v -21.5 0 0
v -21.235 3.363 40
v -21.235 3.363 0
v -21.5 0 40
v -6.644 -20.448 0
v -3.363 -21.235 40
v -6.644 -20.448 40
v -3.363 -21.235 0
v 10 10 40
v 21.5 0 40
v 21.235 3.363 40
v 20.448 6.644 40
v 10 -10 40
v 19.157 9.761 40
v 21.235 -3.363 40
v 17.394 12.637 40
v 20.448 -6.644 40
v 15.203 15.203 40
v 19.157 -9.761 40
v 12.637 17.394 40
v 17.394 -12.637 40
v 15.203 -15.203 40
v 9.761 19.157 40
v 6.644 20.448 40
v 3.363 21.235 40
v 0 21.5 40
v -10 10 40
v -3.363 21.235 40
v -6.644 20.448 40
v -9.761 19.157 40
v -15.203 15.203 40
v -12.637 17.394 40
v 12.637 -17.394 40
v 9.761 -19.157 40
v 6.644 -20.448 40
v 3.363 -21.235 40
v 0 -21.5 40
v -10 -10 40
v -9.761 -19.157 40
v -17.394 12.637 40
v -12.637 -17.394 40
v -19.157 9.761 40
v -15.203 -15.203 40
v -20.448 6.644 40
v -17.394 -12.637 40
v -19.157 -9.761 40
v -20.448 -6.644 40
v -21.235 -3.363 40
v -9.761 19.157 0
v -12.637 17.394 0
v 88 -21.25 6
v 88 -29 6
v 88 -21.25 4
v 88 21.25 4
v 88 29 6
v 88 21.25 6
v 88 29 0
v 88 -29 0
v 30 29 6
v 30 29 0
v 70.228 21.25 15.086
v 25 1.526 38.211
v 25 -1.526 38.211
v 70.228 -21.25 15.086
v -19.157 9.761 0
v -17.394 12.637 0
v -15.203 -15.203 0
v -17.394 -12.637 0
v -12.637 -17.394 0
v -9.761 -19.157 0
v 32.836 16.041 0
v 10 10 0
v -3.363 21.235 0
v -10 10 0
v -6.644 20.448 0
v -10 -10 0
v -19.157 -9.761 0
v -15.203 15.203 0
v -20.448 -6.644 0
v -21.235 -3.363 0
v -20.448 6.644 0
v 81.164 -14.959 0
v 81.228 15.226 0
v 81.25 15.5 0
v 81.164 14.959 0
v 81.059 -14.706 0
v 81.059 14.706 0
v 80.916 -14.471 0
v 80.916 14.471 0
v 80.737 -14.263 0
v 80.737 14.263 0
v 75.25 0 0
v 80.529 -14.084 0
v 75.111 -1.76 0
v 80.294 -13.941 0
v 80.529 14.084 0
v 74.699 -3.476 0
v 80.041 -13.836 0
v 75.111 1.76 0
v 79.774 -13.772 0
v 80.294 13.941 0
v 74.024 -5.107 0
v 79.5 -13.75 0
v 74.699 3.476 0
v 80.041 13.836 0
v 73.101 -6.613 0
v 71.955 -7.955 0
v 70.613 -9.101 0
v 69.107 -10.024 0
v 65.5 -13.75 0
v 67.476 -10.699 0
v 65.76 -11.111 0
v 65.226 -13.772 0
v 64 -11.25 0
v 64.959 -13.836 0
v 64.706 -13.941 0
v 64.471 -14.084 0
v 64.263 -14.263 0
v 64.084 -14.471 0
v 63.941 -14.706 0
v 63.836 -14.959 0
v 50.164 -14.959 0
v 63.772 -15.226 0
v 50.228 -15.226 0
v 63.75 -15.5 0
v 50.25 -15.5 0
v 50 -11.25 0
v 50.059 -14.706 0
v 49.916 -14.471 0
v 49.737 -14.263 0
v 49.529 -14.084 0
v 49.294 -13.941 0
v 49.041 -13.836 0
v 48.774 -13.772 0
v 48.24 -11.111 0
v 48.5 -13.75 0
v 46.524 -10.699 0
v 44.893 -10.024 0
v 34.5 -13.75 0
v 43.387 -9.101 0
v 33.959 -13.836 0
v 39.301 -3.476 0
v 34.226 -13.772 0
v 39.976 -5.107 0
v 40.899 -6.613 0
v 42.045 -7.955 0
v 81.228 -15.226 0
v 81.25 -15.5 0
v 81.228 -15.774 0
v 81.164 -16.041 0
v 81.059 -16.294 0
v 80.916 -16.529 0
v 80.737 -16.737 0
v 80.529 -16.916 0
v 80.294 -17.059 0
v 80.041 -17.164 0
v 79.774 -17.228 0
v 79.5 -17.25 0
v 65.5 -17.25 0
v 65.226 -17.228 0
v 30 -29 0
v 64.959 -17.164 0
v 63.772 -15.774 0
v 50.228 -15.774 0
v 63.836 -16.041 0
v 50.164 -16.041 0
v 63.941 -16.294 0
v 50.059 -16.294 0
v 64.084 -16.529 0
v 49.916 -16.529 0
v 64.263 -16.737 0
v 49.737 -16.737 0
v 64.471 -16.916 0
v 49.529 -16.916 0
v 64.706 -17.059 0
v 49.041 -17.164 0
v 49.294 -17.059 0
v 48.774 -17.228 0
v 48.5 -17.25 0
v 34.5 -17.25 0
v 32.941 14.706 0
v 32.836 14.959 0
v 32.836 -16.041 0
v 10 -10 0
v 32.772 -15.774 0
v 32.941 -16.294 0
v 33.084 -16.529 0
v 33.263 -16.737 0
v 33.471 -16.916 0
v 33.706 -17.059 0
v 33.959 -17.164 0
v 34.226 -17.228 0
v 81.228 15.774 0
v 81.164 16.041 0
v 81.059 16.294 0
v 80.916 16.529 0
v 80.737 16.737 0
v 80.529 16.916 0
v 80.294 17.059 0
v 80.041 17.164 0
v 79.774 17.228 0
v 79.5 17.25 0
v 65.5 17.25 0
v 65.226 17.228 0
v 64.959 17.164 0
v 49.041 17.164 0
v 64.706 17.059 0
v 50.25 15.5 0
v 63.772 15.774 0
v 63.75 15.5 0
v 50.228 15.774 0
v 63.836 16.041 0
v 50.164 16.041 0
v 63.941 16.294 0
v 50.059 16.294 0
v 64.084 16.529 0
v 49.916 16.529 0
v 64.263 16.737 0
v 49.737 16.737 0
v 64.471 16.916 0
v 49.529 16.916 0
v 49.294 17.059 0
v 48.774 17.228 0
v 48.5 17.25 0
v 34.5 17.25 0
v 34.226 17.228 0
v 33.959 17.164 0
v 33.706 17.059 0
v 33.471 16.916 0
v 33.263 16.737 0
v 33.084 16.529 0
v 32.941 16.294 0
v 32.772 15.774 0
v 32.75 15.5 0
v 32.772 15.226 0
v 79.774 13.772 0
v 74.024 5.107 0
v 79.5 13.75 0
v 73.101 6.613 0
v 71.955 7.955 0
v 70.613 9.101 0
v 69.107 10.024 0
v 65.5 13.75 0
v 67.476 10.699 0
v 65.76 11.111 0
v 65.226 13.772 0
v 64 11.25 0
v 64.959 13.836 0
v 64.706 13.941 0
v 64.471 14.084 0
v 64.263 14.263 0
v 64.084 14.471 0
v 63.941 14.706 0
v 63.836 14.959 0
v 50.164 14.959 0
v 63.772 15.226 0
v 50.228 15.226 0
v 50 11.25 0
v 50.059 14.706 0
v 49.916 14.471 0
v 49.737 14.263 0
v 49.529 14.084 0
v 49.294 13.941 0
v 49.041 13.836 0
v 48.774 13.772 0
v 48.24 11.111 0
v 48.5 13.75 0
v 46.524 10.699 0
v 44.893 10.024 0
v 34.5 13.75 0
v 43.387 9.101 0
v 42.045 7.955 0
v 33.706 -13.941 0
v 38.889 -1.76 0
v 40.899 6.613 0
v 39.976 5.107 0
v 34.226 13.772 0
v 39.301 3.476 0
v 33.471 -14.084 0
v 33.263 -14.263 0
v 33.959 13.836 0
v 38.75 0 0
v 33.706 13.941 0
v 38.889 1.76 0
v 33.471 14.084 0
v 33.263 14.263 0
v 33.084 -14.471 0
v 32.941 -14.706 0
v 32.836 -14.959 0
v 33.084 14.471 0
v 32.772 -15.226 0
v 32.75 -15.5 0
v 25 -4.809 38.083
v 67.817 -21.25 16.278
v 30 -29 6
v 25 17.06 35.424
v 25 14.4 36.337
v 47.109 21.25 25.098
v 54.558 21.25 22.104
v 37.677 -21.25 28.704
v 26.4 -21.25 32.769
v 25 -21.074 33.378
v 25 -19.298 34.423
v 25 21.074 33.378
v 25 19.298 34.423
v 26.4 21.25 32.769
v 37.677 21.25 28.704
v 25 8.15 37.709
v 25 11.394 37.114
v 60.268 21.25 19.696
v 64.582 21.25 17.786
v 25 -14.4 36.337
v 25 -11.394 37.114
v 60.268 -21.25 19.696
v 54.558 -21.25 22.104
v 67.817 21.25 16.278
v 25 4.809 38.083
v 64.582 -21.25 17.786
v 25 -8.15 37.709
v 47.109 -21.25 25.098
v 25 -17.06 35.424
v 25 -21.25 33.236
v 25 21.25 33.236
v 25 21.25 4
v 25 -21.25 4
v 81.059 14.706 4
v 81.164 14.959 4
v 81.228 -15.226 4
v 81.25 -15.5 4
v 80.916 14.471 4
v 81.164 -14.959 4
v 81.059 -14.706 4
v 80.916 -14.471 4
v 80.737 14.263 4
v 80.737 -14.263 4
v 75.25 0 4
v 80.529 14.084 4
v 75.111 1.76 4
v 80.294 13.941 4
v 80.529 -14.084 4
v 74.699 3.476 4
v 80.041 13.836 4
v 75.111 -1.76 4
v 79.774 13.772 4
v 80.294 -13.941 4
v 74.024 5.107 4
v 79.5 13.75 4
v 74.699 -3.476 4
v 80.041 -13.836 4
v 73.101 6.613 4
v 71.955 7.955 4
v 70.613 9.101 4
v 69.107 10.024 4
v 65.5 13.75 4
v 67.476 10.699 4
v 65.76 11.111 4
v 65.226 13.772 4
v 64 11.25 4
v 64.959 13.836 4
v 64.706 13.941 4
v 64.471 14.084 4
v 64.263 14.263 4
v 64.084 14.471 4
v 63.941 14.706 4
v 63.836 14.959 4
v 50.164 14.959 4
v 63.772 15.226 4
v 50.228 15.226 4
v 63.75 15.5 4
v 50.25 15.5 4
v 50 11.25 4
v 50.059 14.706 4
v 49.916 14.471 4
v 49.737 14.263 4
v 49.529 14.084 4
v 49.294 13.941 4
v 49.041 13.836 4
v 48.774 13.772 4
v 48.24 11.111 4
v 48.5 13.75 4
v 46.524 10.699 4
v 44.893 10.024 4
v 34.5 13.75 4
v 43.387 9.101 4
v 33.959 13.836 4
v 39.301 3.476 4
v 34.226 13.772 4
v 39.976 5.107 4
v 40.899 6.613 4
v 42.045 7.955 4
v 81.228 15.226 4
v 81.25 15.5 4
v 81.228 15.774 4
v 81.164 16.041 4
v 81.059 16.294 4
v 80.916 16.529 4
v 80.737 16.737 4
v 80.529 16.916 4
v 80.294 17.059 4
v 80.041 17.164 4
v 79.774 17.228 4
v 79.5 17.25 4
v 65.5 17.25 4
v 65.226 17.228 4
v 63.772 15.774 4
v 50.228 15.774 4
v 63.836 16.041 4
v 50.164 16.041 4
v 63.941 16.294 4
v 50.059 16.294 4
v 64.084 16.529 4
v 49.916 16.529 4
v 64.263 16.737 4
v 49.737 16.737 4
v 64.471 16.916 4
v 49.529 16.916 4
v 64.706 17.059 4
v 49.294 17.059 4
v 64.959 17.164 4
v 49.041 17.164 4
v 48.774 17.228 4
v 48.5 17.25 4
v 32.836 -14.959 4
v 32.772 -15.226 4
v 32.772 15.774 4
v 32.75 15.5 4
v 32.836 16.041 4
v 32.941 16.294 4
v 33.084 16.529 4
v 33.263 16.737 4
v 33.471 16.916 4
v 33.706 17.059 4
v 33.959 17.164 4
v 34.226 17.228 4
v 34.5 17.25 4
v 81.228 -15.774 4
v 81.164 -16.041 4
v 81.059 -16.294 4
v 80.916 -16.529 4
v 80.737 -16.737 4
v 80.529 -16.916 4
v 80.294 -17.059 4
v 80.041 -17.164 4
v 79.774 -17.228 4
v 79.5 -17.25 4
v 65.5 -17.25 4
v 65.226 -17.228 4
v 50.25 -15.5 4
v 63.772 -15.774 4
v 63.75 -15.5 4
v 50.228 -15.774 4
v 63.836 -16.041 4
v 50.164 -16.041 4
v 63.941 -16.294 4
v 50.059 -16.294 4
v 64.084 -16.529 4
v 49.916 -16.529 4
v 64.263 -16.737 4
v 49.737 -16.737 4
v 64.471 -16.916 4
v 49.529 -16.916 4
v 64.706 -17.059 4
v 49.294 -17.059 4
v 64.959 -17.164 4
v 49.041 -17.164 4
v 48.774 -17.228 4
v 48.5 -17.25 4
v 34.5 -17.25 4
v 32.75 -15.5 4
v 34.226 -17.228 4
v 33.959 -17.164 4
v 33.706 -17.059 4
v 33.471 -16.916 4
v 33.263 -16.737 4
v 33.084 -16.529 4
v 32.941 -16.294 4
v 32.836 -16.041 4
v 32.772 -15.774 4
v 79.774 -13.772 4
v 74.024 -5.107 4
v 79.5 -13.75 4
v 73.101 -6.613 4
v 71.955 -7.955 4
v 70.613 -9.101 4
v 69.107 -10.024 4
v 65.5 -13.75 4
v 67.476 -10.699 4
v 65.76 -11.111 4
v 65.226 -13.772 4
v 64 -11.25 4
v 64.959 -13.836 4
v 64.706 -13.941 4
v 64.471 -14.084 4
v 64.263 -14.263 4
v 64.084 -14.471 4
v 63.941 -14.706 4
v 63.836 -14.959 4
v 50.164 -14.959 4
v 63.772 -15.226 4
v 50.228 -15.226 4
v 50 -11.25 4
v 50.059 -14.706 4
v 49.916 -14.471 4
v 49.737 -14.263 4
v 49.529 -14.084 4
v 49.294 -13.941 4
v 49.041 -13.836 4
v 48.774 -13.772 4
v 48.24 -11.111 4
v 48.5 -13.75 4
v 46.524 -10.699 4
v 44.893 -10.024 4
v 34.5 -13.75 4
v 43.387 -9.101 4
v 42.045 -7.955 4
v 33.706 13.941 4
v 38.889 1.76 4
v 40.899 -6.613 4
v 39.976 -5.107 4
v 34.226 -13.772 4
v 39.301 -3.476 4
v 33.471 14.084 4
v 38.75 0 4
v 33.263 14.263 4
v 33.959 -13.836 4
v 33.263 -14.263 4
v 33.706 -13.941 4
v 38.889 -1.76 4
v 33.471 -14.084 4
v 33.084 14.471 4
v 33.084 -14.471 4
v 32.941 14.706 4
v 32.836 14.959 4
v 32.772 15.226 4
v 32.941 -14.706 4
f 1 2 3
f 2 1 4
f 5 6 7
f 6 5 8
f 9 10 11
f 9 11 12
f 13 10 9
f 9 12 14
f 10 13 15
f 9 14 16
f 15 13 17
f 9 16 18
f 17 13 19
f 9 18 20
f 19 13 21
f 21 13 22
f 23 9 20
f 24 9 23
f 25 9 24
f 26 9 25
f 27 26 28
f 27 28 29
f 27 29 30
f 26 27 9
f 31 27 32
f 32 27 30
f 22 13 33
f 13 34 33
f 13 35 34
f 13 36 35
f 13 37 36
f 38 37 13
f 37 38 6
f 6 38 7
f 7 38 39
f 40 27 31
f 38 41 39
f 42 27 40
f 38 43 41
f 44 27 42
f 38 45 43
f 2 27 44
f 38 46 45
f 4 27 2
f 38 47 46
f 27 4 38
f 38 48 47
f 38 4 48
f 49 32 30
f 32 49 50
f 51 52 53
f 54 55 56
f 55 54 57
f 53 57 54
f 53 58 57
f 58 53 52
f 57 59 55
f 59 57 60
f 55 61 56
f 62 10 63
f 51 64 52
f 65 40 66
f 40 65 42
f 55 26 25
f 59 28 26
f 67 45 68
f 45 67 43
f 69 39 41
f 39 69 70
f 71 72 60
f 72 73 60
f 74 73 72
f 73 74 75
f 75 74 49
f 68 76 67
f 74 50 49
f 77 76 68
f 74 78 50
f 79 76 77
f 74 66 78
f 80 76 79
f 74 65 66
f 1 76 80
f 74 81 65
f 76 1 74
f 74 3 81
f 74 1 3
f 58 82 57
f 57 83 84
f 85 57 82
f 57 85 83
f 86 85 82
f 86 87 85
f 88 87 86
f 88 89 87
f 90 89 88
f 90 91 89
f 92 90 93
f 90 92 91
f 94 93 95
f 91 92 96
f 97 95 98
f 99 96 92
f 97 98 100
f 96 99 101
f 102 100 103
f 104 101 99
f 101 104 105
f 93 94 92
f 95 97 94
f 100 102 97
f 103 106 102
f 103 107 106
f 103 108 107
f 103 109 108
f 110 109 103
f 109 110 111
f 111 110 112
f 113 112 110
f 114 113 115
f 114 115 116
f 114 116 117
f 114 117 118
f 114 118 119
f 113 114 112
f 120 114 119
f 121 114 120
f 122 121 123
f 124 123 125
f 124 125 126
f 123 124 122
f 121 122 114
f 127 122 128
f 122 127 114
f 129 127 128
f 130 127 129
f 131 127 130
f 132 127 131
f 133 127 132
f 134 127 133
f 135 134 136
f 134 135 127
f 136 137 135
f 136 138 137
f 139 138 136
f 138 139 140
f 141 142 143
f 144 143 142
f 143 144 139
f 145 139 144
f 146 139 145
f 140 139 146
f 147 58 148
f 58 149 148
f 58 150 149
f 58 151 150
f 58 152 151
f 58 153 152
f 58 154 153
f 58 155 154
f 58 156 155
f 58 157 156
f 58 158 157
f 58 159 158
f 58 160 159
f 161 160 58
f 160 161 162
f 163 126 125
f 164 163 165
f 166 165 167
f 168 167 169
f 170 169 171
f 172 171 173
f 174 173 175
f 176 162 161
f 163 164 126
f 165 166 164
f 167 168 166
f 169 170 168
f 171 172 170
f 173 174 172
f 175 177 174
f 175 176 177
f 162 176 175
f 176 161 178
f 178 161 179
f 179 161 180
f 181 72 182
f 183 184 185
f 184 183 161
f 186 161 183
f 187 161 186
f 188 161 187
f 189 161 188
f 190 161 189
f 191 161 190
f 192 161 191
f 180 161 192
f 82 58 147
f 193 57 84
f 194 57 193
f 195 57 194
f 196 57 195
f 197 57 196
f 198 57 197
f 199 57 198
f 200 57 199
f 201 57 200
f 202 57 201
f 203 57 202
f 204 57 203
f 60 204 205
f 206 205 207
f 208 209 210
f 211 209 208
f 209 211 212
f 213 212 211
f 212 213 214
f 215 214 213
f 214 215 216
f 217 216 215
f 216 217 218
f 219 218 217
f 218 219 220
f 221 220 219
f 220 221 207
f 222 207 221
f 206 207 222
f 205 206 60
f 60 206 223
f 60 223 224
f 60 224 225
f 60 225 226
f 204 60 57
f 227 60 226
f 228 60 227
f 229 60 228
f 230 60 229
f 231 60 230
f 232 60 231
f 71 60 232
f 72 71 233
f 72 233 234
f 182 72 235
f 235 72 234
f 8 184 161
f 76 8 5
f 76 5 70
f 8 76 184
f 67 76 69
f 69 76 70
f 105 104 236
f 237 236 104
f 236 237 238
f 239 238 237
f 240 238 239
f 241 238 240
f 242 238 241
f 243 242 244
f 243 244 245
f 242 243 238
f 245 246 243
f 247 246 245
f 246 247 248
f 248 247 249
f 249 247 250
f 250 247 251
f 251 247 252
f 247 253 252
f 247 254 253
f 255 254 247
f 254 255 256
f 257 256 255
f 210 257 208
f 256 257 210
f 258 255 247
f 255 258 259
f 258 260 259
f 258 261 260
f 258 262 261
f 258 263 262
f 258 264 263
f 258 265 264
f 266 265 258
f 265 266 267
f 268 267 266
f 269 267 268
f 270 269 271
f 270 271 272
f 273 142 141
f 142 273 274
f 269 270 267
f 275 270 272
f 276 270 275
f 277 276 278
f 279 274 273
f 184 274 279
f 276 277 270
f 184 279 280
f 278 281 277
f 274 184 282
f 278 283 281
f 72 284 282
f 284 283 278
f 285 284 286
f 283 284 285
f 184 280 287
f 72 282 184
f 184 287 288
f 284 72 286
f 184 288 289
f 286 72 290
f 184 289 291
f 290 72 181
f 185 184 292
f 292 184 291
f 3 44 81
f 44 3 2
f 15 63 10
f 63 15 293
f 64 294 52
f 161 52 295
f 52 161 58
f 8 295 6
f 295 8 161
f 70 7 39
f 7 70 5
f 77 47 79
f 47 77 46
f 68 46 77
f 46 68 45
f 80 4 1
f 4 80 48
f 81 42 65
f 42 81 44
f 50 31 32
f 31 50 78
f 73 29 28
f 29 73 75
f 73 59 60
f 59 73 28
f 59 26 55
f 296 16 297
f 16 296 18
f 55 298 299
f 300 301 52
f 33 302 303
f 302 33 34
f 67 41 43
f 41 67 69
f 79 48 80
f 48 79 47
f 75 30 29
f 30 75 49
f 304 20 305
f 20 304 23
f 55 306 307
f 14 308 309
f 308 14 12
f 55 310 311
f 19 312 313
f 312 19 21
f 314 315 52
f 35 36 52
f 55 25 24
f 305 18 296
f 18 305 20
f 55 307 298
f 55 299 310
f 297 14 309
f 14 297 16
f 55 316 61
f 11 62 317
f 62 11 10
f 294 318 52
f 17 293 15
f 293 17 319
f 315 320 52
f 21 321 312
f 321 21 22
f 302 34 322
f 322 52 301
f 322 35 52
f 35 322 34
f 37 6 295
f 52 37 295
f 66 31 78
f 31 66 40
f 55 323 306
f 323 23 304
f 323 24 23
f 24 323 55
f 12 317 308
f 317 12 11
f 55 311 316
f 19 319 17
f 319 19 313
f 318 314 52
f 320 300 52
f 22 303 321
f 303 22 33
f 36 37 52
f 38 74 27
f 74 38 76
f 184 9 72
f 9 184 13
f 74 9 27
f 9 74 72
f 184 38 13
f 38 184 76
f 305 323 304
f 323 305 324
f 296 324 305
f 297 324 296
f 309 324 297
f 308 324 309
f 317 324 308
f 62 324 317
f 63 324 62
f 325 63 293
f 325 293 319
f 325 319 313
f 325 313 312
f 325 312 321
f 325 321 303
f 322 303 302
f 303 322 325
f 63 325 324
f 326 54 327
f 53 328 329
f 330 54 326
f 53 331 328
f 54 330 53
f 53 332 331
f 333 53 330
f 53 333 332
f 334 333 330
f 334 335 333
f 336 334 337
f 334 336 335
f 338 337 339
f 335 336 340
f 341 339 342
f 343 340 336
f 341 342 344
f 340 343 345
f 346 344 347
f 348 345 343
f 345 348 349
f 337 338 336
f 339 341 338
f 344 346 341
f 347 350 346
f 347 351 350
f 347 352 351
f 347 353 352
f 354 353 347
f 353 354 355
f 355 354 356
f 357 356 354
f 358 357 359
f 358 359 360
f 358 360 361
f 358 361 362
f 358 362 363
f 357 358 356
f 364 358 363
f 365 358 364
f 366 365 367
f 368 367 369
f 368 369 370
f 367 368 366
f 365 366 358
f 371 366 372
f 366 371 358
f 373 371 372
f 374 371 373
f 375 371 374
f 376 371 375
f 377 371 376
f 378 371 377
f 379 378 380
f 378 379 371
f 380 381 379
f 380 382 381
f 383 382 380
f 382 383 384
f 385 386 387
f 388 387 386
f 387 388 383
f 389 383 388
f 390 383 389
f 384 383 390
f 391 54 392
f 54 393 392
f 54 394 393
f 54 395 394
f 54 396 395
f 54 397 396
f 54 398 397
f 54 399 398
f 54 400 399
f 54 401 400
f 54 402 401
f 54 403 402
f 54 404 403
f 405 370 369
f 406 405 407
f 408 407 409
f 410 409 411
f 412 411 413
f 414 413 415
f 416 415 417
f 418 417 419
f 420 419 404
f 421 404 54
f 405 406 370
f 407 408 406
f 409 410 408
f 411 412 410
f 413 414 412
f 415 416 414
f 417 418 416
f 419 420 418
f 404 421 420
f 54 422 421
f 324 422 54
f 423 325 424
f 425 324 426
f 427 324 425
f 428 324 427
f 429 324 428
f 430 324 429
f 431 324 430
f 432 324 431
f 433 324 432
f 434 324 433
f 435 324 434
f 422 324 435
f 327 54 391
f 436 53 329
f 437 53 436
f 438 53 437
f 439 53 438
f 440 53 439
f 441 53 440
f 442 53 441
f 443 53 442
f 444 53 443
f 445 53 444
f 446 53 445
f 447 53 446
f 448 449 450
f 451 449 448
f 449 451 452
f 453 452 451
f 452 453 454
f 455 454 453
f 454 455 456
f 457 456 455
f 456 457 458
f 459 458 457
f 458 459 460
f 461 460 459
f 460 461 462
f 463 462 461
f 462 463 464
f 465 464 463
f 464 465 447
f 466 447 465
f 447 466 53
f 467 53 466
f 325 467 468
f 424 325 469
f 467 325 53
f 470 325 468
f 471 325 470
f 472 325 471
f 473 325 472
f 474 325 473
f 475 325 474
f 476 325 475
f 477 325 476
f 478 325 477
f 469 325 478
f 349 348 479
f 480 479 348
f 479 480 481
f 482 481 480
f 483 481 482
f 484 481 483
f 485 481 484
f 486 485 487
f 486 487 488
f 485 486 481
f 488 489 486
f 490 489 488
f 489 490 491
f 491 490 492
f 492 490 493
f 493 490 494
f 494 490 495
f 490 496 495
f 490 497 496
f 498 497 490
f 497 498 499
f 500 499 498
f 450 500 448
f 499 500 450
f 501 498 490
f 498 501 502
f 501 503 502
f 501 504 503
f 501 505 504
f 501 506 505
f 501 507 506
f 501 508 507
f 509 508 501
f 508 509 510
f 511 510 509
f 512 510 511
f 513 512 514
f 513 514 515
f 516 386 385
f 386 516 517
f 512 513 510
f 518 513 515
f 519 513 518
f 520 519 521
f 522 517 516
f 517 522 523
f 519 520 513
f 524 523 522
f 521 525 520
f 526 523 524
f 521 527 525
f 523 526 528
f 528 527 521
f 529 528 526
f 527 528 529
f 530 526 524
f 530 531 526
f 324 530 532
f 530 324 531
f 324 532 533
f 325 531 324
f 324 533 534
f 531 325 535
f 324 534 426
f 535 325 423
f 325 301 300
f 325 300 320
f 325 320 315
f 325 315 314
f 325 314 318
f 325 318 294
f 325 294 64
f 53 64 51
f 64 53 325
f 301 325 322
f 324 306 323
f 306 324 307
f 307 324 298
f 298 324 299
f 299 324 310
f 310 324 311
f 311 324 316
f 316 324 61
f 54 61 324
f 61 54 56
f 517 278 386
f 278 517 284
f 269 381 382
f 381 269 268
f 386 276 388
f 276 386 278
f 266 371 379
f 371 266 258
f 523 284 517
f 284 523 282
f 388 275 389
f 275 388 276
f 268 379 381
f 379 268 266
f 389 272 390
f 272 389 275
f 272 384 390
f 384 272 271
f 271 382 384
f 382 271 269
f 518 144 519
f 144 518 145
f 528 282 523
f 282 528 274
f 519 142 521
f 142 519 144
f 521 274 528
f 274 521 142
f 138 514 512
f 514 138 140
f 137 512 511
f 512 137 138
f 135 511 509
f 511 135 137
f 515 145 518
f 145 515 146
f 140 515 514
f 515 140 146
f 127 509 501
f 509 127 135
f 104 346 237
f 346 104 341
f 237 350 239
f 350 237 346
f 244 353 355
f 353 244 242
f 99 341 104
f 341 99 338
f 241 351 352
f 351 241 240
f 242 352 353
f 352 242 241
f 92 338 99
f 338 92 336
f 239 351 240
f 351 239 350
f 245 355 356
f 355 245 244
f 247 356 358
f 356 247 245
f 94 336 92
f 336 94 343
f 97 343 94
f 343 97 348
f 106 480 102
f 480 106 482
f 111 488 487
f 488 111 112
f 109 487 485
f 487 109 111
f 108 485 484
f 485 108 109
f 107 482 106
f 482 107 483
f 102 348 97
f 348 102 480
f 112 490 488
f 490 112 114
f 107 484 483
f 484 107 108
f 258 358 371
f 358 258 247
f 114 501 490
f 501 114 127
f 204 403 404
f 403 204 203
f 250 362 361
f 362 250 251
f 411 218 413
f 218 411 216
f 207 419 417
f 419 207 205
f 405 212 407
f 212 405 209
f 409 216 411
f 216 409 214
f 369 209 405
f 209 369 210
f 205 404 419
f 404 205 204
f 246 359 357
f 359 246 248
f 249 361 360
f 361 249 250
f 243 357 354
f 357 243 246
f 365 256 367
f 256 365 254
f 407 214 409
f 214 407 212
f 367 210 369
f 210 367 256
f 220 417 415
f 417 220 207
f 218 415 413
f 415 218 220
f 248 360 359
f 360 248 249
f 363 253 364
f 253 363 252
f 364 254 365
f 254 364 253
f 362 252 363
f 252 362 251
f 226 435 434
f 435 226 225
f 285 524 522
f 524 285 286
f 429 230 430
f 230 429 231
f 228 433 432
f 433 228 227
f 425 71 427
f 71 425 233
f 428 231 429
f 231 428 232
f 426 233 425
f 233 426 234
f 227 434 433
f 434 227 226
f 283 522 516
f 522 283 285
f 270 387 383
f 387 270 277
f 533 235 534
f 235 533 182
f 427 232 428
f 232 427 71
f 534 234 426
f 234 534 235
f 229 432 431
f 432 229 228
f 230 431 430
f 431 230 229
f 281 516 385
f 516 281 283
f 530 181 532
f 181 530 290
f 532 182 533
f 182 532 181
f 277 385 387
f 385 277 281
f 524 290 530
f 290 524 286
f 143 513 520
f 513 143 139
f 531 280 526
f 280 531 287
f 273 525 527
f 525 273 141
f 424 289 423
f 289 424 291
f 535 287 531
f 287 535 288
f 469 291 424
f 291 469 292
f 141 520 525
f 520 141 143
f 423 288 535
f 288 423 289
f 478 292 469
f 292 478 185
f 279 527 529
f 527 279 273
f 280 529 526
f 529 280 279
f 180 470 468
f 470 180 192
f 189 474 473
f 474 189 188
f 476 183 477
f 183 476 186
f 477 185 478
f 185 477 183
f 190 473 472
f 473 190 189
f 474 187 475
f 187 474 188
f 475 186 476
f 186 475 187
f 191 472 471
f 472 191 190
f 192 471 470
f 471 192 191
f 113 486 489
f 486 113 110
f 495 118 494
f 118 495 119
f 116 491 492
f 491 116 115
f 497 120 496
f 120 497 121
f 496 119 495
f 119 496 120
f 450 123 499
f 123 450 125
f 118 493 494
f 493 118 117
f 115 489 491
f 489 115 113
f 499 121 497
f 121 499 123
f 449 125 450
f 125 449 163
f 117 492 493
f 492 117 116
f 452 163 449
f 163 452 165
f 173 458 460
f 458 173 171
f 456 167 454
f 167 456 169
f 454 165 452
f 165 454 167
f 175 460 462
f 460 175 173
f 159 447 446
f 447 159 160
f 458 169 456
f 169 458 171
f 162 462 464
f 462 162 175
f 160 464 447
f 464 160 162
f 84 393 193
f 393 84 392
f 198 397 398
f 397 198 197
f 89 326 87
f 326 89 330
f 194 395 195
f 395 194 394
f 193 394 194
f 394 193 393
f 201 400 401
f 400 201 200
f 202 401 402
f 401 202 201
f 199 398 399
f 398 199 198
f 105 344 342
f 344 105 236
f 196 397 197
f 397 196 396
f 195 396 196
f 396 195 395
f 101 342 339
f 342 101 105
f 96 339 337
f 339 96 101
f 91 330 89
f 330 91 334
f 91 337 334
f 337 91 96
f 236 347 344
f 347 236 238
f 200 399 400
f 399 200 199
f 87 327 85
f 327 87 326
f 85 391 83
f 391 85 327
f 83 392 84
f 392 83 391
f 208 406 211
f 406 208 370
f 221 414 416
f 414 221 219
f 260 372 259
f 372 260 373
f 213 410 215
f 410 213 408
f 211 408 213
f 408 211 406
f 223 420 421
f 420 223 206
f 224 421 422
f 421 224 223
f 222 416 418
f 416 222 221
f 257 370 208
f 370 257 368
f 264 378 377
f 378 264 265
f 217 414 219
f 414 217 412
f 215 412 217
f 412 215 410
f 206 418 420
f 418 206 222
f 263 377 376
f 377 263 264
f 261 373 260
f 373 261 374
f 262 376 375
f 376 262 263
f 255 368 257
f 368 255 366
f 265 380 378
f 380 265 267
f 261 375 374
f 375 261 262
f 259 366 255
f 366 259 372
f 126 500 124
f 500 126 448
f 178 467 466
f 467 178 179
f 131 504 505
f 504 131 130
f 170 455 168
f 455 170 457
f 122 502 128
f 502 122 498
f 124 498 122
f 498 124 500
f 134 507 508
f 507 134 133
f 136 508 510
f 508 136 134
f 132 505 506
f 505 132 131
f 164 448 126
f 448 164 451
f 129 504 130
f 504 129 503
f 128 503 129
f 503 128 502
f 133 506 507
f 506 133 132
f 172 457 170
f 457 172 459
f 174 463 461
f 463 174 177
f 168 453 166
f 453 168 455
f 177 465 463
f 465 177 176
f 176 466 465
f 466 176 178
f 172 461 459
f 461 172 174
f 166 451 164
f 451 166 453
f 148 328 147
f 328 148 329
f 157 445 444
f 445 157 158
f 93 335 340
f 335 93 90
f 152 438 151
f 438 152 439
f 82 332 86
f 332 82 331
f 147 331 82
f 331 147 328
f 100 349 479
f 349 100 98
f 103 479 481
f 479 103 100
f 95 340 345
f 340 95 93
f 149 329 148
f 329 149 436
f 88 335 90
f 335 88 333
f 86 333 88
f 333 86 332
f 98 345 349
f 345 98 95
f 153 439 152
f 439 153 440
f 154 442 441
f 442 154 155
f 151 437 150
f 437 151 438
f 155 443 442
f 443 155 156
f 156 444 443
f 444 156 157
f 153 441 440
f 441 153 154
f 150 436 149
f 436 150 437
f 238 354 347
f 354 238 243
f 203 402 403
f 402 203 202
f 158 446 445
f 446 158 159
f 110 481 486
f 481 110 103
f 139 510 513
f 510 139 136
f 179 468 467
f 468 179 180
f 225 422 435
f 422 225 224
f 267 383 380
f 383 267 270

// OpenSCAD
//translate([50,0,+20])rotate([0,180,0])color("red")import("motor_nema17.stl");

difference(){
hull(){
translate([0,0,0])cylinder(r=43/2, h=40, $fn=40);
translate([30,-58/2,0])cube([58,58,6]);
}
translate([-20.0/2,-20.0/2,-1])cube([20.0,20.0,72]);  

translate([25,-42.5/2,4])cube([67,42.5,50]);

translate([50,0,-5])cylinder(r=22.5/2, h=15, $fn=40);
translate([60+4,0,-5])cylinder(r=22.5/2, h=15, $fn=40);
translate([55-10/2,-22.5/2,-5])cube([14,22.5,20]);


translate([50+31/2,+31/2,-5])cylinder(r=3.5/2, h=15, $fn=40);
translate([50-31/2,+31/2,-5])cylinder(r=3.5/2, h=15, $fn=40);

translate([50-31/2,-31/2,-5])cylinder(r=3.5/2, h=15, $fn=40);
translate([50+31/2,-31/2,-5])cylinder(r=3.5/2, h=15, $fn=40);

translate([60+31/2+4,+31/2,-5])cylinder(r=3.5/2, h=15, $fn=40);
translate([60-31/2+4,+31/2,-5])cylinder(r=3.5/2, h=15, $fn=40);
translate([60-31/2+4,-31/2,-5])cylinder(r=3.5/2, h=15, $fn=40);
translate([60+31/2+4,-31/2,-5])cylinder(r=3.5/2, h=15, $fn=40);

translate([55-10/2+31/2,-3.5/2+31/2,-5])cube([14,3.5,60]);
translate([55-10/2+31/2,-3.5/2-31/2,-5])cube([14,3.5,60]);
translate([55-10/2-31/2,-3.5/2-31/2,-5])cube([14,3.5,60]);
translate([55-10/2-31/2,-3.5/2+31/2,-5])cube([14,3.5,60]);

}
